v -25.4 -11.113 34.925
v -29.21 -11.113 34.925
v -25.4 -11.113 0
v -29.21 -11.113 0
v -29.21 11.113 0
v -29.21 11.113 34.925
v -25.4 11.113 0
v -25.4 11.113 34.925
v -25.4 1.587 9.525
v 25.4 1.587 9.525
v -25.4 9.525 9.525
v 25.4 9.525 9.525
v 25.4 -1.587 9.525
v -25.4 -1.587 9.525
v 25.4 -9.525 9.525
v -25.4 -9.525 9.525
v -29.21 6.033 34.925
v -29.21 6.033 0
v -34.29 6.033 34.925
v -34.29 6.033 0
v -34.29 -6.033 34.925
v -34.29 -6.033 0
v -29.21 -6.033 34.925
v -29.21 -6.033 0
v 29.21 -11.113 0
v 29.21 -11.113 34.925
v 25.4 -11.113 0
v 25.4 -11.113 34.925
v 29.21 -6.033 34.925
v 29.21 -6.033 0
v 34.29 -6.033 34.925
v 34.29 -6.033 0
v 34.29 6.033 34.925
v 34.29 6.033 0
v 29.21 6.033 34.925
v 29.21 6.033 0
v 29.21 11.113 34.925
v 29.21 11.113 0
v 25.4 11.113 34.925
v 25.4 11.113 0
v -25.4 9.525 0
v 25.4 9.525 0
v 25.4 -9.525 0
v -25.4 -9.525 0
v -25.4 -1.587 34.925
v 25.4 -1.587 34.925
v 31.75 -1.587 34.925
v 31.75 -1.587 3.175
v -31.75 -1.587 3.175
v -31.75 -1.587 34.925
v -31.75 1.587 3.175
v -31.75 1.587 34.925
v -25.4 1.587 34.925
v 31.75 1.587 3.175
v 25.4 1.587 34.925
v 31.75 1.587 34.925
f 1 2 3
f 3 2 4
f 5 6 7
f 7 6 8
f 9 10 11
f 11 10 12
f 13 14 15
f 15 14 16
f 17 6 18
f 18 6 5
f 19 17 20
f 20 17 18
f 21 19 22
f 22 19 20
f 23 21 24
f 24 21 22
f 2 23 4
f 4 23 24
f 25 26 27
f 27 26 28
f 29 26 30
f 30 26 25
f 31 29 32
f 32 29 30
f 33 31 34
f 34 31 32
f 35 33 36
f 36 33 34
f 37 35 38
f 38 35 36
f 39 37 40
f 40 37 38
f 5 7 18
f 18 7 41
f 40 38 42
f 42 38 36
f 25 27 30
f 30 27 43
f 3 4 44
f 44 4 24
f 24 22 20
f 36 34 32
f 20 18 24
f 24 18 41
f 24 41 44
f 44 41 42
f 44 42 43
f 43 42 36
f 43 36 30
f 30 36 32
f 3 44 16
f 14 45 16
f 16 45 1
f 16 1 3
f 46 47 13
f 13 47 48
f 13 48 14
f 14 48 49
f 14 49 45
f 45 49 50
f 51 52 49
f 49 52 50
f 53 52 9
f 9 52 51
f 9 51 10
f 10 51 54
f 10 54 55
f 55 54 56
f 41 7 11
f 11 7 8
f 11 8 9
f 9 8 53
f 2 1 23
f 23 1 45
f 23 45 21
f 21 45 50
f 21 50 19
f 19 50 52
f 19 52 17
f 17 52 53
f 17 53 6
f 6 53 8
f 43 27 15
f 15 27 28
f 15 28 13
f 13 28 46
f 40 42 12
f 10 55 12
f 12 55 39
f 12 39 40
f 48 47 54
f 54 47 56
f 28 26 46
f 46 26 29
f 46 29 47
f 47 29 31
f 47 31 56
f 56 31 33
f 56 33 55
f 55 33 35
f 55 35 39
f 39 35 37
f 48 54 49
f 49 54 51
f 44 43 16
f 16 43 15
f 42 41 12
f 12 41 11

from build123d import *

# Parameters (mm, degrees)
BOSS_EXTRUDE1_DEPTH     = 9.525
BOSS_EXTRUDE2_DEPTH     = 25.4
SKETCH4_W               = 63.5
SKETCH4_H               = 3.175
CUT_EXTRUDE1_DEPTH      = 6.35
CUT_EXTRUDE2_DEPTH      = 45.095938092
CUT_EXTRUDE2_DEPTH_BACK = 45.095938092
SKETCH5_W               = 50.8
SKETCH5_H               = 1.5875


with BuildPart() as part:
    # Sketch1 → Boss-Extrude1 (new body)
    with BuildSketch(Plane.XY):
        Polygon((-29.21, -11.1125), (29.21, -11.1125), (29.21, -6.0325), (34.29, -6.0325), (34.29, 6.0325), (29.21, 6.0325), (29.21, 11.1125), (-29.21, 11.1125), (-29.21, 6.0325), (-34.29, 6.0325), (-34.29, -6.0325), (-29.21, -6.0325), align=None)
    extrude(amount=BOSS_EXTRUDE1_DEPTH)

    # Sketch3 → Boss-Extrude2 (add)
    with BuildSketch(Plane.XY.offset(9.525)):
        Polygon((-29.21, 11.1125), (-25.4, 11.1125), (-25.4, 1.5875), (-31.75, 1.5875), (-31.75, -1.5875), (-25.4, -1.5875), (-25.4, -11.1125), (-29.21, -11.1125), (-29.21, -6.0325), (-34.29, -6.0325), (-34.29, 6.0325), (-29.21, 6.0325), align=None)
        Polygon((25.4, -1.5875), (25.4, -11.1125), (29.21, -11.1125), (29.21, -6.0325), (34.29, -6.0325), (34.29, 6.0325), (29.21, 6.0325), (29.21, 11.1125), (25.4, 11.1125), (25.4, 1.5875), (31.75, 1.5875), (31.75, -1.5875), align=None)
    extrude(amount=BOSS_EXTRUDE2_DEPTH)

    # Sketch4 → Cut-Extrude1 (cut)
    with BuildSketch(Plane.XY.offset(9.525)):
        Rectangle(SKETCH4_W, SKETCH4_H)
    extrude(amount=-CUT_EXTRUDE1_DEPTH, mode=Mode.SUBTRACT)

    # Sketch5 → Cut-Extrude2 (cut, two sides: drawn at the far end of the back side and taken through both)
    with BuildSketch(Plane.XY.offset(9.525).offset(-CUT_EXTRUDE2_DEPTH_BACK)):
        with Locations((0, 10.31875)):
            Rectangle(SKETCH5_W, SKETCH5_H)
        with Locations((0, -10.31875)):
            Rectangle(SKETCH5_W, SKETCH5_H)
    extrude(amount=CUT_EXTRUDE2_DEPTH + CUT_EXTRUDE2_DEPTH_BACK, mode=Mode.SUBTRACT)


solid = part.part
